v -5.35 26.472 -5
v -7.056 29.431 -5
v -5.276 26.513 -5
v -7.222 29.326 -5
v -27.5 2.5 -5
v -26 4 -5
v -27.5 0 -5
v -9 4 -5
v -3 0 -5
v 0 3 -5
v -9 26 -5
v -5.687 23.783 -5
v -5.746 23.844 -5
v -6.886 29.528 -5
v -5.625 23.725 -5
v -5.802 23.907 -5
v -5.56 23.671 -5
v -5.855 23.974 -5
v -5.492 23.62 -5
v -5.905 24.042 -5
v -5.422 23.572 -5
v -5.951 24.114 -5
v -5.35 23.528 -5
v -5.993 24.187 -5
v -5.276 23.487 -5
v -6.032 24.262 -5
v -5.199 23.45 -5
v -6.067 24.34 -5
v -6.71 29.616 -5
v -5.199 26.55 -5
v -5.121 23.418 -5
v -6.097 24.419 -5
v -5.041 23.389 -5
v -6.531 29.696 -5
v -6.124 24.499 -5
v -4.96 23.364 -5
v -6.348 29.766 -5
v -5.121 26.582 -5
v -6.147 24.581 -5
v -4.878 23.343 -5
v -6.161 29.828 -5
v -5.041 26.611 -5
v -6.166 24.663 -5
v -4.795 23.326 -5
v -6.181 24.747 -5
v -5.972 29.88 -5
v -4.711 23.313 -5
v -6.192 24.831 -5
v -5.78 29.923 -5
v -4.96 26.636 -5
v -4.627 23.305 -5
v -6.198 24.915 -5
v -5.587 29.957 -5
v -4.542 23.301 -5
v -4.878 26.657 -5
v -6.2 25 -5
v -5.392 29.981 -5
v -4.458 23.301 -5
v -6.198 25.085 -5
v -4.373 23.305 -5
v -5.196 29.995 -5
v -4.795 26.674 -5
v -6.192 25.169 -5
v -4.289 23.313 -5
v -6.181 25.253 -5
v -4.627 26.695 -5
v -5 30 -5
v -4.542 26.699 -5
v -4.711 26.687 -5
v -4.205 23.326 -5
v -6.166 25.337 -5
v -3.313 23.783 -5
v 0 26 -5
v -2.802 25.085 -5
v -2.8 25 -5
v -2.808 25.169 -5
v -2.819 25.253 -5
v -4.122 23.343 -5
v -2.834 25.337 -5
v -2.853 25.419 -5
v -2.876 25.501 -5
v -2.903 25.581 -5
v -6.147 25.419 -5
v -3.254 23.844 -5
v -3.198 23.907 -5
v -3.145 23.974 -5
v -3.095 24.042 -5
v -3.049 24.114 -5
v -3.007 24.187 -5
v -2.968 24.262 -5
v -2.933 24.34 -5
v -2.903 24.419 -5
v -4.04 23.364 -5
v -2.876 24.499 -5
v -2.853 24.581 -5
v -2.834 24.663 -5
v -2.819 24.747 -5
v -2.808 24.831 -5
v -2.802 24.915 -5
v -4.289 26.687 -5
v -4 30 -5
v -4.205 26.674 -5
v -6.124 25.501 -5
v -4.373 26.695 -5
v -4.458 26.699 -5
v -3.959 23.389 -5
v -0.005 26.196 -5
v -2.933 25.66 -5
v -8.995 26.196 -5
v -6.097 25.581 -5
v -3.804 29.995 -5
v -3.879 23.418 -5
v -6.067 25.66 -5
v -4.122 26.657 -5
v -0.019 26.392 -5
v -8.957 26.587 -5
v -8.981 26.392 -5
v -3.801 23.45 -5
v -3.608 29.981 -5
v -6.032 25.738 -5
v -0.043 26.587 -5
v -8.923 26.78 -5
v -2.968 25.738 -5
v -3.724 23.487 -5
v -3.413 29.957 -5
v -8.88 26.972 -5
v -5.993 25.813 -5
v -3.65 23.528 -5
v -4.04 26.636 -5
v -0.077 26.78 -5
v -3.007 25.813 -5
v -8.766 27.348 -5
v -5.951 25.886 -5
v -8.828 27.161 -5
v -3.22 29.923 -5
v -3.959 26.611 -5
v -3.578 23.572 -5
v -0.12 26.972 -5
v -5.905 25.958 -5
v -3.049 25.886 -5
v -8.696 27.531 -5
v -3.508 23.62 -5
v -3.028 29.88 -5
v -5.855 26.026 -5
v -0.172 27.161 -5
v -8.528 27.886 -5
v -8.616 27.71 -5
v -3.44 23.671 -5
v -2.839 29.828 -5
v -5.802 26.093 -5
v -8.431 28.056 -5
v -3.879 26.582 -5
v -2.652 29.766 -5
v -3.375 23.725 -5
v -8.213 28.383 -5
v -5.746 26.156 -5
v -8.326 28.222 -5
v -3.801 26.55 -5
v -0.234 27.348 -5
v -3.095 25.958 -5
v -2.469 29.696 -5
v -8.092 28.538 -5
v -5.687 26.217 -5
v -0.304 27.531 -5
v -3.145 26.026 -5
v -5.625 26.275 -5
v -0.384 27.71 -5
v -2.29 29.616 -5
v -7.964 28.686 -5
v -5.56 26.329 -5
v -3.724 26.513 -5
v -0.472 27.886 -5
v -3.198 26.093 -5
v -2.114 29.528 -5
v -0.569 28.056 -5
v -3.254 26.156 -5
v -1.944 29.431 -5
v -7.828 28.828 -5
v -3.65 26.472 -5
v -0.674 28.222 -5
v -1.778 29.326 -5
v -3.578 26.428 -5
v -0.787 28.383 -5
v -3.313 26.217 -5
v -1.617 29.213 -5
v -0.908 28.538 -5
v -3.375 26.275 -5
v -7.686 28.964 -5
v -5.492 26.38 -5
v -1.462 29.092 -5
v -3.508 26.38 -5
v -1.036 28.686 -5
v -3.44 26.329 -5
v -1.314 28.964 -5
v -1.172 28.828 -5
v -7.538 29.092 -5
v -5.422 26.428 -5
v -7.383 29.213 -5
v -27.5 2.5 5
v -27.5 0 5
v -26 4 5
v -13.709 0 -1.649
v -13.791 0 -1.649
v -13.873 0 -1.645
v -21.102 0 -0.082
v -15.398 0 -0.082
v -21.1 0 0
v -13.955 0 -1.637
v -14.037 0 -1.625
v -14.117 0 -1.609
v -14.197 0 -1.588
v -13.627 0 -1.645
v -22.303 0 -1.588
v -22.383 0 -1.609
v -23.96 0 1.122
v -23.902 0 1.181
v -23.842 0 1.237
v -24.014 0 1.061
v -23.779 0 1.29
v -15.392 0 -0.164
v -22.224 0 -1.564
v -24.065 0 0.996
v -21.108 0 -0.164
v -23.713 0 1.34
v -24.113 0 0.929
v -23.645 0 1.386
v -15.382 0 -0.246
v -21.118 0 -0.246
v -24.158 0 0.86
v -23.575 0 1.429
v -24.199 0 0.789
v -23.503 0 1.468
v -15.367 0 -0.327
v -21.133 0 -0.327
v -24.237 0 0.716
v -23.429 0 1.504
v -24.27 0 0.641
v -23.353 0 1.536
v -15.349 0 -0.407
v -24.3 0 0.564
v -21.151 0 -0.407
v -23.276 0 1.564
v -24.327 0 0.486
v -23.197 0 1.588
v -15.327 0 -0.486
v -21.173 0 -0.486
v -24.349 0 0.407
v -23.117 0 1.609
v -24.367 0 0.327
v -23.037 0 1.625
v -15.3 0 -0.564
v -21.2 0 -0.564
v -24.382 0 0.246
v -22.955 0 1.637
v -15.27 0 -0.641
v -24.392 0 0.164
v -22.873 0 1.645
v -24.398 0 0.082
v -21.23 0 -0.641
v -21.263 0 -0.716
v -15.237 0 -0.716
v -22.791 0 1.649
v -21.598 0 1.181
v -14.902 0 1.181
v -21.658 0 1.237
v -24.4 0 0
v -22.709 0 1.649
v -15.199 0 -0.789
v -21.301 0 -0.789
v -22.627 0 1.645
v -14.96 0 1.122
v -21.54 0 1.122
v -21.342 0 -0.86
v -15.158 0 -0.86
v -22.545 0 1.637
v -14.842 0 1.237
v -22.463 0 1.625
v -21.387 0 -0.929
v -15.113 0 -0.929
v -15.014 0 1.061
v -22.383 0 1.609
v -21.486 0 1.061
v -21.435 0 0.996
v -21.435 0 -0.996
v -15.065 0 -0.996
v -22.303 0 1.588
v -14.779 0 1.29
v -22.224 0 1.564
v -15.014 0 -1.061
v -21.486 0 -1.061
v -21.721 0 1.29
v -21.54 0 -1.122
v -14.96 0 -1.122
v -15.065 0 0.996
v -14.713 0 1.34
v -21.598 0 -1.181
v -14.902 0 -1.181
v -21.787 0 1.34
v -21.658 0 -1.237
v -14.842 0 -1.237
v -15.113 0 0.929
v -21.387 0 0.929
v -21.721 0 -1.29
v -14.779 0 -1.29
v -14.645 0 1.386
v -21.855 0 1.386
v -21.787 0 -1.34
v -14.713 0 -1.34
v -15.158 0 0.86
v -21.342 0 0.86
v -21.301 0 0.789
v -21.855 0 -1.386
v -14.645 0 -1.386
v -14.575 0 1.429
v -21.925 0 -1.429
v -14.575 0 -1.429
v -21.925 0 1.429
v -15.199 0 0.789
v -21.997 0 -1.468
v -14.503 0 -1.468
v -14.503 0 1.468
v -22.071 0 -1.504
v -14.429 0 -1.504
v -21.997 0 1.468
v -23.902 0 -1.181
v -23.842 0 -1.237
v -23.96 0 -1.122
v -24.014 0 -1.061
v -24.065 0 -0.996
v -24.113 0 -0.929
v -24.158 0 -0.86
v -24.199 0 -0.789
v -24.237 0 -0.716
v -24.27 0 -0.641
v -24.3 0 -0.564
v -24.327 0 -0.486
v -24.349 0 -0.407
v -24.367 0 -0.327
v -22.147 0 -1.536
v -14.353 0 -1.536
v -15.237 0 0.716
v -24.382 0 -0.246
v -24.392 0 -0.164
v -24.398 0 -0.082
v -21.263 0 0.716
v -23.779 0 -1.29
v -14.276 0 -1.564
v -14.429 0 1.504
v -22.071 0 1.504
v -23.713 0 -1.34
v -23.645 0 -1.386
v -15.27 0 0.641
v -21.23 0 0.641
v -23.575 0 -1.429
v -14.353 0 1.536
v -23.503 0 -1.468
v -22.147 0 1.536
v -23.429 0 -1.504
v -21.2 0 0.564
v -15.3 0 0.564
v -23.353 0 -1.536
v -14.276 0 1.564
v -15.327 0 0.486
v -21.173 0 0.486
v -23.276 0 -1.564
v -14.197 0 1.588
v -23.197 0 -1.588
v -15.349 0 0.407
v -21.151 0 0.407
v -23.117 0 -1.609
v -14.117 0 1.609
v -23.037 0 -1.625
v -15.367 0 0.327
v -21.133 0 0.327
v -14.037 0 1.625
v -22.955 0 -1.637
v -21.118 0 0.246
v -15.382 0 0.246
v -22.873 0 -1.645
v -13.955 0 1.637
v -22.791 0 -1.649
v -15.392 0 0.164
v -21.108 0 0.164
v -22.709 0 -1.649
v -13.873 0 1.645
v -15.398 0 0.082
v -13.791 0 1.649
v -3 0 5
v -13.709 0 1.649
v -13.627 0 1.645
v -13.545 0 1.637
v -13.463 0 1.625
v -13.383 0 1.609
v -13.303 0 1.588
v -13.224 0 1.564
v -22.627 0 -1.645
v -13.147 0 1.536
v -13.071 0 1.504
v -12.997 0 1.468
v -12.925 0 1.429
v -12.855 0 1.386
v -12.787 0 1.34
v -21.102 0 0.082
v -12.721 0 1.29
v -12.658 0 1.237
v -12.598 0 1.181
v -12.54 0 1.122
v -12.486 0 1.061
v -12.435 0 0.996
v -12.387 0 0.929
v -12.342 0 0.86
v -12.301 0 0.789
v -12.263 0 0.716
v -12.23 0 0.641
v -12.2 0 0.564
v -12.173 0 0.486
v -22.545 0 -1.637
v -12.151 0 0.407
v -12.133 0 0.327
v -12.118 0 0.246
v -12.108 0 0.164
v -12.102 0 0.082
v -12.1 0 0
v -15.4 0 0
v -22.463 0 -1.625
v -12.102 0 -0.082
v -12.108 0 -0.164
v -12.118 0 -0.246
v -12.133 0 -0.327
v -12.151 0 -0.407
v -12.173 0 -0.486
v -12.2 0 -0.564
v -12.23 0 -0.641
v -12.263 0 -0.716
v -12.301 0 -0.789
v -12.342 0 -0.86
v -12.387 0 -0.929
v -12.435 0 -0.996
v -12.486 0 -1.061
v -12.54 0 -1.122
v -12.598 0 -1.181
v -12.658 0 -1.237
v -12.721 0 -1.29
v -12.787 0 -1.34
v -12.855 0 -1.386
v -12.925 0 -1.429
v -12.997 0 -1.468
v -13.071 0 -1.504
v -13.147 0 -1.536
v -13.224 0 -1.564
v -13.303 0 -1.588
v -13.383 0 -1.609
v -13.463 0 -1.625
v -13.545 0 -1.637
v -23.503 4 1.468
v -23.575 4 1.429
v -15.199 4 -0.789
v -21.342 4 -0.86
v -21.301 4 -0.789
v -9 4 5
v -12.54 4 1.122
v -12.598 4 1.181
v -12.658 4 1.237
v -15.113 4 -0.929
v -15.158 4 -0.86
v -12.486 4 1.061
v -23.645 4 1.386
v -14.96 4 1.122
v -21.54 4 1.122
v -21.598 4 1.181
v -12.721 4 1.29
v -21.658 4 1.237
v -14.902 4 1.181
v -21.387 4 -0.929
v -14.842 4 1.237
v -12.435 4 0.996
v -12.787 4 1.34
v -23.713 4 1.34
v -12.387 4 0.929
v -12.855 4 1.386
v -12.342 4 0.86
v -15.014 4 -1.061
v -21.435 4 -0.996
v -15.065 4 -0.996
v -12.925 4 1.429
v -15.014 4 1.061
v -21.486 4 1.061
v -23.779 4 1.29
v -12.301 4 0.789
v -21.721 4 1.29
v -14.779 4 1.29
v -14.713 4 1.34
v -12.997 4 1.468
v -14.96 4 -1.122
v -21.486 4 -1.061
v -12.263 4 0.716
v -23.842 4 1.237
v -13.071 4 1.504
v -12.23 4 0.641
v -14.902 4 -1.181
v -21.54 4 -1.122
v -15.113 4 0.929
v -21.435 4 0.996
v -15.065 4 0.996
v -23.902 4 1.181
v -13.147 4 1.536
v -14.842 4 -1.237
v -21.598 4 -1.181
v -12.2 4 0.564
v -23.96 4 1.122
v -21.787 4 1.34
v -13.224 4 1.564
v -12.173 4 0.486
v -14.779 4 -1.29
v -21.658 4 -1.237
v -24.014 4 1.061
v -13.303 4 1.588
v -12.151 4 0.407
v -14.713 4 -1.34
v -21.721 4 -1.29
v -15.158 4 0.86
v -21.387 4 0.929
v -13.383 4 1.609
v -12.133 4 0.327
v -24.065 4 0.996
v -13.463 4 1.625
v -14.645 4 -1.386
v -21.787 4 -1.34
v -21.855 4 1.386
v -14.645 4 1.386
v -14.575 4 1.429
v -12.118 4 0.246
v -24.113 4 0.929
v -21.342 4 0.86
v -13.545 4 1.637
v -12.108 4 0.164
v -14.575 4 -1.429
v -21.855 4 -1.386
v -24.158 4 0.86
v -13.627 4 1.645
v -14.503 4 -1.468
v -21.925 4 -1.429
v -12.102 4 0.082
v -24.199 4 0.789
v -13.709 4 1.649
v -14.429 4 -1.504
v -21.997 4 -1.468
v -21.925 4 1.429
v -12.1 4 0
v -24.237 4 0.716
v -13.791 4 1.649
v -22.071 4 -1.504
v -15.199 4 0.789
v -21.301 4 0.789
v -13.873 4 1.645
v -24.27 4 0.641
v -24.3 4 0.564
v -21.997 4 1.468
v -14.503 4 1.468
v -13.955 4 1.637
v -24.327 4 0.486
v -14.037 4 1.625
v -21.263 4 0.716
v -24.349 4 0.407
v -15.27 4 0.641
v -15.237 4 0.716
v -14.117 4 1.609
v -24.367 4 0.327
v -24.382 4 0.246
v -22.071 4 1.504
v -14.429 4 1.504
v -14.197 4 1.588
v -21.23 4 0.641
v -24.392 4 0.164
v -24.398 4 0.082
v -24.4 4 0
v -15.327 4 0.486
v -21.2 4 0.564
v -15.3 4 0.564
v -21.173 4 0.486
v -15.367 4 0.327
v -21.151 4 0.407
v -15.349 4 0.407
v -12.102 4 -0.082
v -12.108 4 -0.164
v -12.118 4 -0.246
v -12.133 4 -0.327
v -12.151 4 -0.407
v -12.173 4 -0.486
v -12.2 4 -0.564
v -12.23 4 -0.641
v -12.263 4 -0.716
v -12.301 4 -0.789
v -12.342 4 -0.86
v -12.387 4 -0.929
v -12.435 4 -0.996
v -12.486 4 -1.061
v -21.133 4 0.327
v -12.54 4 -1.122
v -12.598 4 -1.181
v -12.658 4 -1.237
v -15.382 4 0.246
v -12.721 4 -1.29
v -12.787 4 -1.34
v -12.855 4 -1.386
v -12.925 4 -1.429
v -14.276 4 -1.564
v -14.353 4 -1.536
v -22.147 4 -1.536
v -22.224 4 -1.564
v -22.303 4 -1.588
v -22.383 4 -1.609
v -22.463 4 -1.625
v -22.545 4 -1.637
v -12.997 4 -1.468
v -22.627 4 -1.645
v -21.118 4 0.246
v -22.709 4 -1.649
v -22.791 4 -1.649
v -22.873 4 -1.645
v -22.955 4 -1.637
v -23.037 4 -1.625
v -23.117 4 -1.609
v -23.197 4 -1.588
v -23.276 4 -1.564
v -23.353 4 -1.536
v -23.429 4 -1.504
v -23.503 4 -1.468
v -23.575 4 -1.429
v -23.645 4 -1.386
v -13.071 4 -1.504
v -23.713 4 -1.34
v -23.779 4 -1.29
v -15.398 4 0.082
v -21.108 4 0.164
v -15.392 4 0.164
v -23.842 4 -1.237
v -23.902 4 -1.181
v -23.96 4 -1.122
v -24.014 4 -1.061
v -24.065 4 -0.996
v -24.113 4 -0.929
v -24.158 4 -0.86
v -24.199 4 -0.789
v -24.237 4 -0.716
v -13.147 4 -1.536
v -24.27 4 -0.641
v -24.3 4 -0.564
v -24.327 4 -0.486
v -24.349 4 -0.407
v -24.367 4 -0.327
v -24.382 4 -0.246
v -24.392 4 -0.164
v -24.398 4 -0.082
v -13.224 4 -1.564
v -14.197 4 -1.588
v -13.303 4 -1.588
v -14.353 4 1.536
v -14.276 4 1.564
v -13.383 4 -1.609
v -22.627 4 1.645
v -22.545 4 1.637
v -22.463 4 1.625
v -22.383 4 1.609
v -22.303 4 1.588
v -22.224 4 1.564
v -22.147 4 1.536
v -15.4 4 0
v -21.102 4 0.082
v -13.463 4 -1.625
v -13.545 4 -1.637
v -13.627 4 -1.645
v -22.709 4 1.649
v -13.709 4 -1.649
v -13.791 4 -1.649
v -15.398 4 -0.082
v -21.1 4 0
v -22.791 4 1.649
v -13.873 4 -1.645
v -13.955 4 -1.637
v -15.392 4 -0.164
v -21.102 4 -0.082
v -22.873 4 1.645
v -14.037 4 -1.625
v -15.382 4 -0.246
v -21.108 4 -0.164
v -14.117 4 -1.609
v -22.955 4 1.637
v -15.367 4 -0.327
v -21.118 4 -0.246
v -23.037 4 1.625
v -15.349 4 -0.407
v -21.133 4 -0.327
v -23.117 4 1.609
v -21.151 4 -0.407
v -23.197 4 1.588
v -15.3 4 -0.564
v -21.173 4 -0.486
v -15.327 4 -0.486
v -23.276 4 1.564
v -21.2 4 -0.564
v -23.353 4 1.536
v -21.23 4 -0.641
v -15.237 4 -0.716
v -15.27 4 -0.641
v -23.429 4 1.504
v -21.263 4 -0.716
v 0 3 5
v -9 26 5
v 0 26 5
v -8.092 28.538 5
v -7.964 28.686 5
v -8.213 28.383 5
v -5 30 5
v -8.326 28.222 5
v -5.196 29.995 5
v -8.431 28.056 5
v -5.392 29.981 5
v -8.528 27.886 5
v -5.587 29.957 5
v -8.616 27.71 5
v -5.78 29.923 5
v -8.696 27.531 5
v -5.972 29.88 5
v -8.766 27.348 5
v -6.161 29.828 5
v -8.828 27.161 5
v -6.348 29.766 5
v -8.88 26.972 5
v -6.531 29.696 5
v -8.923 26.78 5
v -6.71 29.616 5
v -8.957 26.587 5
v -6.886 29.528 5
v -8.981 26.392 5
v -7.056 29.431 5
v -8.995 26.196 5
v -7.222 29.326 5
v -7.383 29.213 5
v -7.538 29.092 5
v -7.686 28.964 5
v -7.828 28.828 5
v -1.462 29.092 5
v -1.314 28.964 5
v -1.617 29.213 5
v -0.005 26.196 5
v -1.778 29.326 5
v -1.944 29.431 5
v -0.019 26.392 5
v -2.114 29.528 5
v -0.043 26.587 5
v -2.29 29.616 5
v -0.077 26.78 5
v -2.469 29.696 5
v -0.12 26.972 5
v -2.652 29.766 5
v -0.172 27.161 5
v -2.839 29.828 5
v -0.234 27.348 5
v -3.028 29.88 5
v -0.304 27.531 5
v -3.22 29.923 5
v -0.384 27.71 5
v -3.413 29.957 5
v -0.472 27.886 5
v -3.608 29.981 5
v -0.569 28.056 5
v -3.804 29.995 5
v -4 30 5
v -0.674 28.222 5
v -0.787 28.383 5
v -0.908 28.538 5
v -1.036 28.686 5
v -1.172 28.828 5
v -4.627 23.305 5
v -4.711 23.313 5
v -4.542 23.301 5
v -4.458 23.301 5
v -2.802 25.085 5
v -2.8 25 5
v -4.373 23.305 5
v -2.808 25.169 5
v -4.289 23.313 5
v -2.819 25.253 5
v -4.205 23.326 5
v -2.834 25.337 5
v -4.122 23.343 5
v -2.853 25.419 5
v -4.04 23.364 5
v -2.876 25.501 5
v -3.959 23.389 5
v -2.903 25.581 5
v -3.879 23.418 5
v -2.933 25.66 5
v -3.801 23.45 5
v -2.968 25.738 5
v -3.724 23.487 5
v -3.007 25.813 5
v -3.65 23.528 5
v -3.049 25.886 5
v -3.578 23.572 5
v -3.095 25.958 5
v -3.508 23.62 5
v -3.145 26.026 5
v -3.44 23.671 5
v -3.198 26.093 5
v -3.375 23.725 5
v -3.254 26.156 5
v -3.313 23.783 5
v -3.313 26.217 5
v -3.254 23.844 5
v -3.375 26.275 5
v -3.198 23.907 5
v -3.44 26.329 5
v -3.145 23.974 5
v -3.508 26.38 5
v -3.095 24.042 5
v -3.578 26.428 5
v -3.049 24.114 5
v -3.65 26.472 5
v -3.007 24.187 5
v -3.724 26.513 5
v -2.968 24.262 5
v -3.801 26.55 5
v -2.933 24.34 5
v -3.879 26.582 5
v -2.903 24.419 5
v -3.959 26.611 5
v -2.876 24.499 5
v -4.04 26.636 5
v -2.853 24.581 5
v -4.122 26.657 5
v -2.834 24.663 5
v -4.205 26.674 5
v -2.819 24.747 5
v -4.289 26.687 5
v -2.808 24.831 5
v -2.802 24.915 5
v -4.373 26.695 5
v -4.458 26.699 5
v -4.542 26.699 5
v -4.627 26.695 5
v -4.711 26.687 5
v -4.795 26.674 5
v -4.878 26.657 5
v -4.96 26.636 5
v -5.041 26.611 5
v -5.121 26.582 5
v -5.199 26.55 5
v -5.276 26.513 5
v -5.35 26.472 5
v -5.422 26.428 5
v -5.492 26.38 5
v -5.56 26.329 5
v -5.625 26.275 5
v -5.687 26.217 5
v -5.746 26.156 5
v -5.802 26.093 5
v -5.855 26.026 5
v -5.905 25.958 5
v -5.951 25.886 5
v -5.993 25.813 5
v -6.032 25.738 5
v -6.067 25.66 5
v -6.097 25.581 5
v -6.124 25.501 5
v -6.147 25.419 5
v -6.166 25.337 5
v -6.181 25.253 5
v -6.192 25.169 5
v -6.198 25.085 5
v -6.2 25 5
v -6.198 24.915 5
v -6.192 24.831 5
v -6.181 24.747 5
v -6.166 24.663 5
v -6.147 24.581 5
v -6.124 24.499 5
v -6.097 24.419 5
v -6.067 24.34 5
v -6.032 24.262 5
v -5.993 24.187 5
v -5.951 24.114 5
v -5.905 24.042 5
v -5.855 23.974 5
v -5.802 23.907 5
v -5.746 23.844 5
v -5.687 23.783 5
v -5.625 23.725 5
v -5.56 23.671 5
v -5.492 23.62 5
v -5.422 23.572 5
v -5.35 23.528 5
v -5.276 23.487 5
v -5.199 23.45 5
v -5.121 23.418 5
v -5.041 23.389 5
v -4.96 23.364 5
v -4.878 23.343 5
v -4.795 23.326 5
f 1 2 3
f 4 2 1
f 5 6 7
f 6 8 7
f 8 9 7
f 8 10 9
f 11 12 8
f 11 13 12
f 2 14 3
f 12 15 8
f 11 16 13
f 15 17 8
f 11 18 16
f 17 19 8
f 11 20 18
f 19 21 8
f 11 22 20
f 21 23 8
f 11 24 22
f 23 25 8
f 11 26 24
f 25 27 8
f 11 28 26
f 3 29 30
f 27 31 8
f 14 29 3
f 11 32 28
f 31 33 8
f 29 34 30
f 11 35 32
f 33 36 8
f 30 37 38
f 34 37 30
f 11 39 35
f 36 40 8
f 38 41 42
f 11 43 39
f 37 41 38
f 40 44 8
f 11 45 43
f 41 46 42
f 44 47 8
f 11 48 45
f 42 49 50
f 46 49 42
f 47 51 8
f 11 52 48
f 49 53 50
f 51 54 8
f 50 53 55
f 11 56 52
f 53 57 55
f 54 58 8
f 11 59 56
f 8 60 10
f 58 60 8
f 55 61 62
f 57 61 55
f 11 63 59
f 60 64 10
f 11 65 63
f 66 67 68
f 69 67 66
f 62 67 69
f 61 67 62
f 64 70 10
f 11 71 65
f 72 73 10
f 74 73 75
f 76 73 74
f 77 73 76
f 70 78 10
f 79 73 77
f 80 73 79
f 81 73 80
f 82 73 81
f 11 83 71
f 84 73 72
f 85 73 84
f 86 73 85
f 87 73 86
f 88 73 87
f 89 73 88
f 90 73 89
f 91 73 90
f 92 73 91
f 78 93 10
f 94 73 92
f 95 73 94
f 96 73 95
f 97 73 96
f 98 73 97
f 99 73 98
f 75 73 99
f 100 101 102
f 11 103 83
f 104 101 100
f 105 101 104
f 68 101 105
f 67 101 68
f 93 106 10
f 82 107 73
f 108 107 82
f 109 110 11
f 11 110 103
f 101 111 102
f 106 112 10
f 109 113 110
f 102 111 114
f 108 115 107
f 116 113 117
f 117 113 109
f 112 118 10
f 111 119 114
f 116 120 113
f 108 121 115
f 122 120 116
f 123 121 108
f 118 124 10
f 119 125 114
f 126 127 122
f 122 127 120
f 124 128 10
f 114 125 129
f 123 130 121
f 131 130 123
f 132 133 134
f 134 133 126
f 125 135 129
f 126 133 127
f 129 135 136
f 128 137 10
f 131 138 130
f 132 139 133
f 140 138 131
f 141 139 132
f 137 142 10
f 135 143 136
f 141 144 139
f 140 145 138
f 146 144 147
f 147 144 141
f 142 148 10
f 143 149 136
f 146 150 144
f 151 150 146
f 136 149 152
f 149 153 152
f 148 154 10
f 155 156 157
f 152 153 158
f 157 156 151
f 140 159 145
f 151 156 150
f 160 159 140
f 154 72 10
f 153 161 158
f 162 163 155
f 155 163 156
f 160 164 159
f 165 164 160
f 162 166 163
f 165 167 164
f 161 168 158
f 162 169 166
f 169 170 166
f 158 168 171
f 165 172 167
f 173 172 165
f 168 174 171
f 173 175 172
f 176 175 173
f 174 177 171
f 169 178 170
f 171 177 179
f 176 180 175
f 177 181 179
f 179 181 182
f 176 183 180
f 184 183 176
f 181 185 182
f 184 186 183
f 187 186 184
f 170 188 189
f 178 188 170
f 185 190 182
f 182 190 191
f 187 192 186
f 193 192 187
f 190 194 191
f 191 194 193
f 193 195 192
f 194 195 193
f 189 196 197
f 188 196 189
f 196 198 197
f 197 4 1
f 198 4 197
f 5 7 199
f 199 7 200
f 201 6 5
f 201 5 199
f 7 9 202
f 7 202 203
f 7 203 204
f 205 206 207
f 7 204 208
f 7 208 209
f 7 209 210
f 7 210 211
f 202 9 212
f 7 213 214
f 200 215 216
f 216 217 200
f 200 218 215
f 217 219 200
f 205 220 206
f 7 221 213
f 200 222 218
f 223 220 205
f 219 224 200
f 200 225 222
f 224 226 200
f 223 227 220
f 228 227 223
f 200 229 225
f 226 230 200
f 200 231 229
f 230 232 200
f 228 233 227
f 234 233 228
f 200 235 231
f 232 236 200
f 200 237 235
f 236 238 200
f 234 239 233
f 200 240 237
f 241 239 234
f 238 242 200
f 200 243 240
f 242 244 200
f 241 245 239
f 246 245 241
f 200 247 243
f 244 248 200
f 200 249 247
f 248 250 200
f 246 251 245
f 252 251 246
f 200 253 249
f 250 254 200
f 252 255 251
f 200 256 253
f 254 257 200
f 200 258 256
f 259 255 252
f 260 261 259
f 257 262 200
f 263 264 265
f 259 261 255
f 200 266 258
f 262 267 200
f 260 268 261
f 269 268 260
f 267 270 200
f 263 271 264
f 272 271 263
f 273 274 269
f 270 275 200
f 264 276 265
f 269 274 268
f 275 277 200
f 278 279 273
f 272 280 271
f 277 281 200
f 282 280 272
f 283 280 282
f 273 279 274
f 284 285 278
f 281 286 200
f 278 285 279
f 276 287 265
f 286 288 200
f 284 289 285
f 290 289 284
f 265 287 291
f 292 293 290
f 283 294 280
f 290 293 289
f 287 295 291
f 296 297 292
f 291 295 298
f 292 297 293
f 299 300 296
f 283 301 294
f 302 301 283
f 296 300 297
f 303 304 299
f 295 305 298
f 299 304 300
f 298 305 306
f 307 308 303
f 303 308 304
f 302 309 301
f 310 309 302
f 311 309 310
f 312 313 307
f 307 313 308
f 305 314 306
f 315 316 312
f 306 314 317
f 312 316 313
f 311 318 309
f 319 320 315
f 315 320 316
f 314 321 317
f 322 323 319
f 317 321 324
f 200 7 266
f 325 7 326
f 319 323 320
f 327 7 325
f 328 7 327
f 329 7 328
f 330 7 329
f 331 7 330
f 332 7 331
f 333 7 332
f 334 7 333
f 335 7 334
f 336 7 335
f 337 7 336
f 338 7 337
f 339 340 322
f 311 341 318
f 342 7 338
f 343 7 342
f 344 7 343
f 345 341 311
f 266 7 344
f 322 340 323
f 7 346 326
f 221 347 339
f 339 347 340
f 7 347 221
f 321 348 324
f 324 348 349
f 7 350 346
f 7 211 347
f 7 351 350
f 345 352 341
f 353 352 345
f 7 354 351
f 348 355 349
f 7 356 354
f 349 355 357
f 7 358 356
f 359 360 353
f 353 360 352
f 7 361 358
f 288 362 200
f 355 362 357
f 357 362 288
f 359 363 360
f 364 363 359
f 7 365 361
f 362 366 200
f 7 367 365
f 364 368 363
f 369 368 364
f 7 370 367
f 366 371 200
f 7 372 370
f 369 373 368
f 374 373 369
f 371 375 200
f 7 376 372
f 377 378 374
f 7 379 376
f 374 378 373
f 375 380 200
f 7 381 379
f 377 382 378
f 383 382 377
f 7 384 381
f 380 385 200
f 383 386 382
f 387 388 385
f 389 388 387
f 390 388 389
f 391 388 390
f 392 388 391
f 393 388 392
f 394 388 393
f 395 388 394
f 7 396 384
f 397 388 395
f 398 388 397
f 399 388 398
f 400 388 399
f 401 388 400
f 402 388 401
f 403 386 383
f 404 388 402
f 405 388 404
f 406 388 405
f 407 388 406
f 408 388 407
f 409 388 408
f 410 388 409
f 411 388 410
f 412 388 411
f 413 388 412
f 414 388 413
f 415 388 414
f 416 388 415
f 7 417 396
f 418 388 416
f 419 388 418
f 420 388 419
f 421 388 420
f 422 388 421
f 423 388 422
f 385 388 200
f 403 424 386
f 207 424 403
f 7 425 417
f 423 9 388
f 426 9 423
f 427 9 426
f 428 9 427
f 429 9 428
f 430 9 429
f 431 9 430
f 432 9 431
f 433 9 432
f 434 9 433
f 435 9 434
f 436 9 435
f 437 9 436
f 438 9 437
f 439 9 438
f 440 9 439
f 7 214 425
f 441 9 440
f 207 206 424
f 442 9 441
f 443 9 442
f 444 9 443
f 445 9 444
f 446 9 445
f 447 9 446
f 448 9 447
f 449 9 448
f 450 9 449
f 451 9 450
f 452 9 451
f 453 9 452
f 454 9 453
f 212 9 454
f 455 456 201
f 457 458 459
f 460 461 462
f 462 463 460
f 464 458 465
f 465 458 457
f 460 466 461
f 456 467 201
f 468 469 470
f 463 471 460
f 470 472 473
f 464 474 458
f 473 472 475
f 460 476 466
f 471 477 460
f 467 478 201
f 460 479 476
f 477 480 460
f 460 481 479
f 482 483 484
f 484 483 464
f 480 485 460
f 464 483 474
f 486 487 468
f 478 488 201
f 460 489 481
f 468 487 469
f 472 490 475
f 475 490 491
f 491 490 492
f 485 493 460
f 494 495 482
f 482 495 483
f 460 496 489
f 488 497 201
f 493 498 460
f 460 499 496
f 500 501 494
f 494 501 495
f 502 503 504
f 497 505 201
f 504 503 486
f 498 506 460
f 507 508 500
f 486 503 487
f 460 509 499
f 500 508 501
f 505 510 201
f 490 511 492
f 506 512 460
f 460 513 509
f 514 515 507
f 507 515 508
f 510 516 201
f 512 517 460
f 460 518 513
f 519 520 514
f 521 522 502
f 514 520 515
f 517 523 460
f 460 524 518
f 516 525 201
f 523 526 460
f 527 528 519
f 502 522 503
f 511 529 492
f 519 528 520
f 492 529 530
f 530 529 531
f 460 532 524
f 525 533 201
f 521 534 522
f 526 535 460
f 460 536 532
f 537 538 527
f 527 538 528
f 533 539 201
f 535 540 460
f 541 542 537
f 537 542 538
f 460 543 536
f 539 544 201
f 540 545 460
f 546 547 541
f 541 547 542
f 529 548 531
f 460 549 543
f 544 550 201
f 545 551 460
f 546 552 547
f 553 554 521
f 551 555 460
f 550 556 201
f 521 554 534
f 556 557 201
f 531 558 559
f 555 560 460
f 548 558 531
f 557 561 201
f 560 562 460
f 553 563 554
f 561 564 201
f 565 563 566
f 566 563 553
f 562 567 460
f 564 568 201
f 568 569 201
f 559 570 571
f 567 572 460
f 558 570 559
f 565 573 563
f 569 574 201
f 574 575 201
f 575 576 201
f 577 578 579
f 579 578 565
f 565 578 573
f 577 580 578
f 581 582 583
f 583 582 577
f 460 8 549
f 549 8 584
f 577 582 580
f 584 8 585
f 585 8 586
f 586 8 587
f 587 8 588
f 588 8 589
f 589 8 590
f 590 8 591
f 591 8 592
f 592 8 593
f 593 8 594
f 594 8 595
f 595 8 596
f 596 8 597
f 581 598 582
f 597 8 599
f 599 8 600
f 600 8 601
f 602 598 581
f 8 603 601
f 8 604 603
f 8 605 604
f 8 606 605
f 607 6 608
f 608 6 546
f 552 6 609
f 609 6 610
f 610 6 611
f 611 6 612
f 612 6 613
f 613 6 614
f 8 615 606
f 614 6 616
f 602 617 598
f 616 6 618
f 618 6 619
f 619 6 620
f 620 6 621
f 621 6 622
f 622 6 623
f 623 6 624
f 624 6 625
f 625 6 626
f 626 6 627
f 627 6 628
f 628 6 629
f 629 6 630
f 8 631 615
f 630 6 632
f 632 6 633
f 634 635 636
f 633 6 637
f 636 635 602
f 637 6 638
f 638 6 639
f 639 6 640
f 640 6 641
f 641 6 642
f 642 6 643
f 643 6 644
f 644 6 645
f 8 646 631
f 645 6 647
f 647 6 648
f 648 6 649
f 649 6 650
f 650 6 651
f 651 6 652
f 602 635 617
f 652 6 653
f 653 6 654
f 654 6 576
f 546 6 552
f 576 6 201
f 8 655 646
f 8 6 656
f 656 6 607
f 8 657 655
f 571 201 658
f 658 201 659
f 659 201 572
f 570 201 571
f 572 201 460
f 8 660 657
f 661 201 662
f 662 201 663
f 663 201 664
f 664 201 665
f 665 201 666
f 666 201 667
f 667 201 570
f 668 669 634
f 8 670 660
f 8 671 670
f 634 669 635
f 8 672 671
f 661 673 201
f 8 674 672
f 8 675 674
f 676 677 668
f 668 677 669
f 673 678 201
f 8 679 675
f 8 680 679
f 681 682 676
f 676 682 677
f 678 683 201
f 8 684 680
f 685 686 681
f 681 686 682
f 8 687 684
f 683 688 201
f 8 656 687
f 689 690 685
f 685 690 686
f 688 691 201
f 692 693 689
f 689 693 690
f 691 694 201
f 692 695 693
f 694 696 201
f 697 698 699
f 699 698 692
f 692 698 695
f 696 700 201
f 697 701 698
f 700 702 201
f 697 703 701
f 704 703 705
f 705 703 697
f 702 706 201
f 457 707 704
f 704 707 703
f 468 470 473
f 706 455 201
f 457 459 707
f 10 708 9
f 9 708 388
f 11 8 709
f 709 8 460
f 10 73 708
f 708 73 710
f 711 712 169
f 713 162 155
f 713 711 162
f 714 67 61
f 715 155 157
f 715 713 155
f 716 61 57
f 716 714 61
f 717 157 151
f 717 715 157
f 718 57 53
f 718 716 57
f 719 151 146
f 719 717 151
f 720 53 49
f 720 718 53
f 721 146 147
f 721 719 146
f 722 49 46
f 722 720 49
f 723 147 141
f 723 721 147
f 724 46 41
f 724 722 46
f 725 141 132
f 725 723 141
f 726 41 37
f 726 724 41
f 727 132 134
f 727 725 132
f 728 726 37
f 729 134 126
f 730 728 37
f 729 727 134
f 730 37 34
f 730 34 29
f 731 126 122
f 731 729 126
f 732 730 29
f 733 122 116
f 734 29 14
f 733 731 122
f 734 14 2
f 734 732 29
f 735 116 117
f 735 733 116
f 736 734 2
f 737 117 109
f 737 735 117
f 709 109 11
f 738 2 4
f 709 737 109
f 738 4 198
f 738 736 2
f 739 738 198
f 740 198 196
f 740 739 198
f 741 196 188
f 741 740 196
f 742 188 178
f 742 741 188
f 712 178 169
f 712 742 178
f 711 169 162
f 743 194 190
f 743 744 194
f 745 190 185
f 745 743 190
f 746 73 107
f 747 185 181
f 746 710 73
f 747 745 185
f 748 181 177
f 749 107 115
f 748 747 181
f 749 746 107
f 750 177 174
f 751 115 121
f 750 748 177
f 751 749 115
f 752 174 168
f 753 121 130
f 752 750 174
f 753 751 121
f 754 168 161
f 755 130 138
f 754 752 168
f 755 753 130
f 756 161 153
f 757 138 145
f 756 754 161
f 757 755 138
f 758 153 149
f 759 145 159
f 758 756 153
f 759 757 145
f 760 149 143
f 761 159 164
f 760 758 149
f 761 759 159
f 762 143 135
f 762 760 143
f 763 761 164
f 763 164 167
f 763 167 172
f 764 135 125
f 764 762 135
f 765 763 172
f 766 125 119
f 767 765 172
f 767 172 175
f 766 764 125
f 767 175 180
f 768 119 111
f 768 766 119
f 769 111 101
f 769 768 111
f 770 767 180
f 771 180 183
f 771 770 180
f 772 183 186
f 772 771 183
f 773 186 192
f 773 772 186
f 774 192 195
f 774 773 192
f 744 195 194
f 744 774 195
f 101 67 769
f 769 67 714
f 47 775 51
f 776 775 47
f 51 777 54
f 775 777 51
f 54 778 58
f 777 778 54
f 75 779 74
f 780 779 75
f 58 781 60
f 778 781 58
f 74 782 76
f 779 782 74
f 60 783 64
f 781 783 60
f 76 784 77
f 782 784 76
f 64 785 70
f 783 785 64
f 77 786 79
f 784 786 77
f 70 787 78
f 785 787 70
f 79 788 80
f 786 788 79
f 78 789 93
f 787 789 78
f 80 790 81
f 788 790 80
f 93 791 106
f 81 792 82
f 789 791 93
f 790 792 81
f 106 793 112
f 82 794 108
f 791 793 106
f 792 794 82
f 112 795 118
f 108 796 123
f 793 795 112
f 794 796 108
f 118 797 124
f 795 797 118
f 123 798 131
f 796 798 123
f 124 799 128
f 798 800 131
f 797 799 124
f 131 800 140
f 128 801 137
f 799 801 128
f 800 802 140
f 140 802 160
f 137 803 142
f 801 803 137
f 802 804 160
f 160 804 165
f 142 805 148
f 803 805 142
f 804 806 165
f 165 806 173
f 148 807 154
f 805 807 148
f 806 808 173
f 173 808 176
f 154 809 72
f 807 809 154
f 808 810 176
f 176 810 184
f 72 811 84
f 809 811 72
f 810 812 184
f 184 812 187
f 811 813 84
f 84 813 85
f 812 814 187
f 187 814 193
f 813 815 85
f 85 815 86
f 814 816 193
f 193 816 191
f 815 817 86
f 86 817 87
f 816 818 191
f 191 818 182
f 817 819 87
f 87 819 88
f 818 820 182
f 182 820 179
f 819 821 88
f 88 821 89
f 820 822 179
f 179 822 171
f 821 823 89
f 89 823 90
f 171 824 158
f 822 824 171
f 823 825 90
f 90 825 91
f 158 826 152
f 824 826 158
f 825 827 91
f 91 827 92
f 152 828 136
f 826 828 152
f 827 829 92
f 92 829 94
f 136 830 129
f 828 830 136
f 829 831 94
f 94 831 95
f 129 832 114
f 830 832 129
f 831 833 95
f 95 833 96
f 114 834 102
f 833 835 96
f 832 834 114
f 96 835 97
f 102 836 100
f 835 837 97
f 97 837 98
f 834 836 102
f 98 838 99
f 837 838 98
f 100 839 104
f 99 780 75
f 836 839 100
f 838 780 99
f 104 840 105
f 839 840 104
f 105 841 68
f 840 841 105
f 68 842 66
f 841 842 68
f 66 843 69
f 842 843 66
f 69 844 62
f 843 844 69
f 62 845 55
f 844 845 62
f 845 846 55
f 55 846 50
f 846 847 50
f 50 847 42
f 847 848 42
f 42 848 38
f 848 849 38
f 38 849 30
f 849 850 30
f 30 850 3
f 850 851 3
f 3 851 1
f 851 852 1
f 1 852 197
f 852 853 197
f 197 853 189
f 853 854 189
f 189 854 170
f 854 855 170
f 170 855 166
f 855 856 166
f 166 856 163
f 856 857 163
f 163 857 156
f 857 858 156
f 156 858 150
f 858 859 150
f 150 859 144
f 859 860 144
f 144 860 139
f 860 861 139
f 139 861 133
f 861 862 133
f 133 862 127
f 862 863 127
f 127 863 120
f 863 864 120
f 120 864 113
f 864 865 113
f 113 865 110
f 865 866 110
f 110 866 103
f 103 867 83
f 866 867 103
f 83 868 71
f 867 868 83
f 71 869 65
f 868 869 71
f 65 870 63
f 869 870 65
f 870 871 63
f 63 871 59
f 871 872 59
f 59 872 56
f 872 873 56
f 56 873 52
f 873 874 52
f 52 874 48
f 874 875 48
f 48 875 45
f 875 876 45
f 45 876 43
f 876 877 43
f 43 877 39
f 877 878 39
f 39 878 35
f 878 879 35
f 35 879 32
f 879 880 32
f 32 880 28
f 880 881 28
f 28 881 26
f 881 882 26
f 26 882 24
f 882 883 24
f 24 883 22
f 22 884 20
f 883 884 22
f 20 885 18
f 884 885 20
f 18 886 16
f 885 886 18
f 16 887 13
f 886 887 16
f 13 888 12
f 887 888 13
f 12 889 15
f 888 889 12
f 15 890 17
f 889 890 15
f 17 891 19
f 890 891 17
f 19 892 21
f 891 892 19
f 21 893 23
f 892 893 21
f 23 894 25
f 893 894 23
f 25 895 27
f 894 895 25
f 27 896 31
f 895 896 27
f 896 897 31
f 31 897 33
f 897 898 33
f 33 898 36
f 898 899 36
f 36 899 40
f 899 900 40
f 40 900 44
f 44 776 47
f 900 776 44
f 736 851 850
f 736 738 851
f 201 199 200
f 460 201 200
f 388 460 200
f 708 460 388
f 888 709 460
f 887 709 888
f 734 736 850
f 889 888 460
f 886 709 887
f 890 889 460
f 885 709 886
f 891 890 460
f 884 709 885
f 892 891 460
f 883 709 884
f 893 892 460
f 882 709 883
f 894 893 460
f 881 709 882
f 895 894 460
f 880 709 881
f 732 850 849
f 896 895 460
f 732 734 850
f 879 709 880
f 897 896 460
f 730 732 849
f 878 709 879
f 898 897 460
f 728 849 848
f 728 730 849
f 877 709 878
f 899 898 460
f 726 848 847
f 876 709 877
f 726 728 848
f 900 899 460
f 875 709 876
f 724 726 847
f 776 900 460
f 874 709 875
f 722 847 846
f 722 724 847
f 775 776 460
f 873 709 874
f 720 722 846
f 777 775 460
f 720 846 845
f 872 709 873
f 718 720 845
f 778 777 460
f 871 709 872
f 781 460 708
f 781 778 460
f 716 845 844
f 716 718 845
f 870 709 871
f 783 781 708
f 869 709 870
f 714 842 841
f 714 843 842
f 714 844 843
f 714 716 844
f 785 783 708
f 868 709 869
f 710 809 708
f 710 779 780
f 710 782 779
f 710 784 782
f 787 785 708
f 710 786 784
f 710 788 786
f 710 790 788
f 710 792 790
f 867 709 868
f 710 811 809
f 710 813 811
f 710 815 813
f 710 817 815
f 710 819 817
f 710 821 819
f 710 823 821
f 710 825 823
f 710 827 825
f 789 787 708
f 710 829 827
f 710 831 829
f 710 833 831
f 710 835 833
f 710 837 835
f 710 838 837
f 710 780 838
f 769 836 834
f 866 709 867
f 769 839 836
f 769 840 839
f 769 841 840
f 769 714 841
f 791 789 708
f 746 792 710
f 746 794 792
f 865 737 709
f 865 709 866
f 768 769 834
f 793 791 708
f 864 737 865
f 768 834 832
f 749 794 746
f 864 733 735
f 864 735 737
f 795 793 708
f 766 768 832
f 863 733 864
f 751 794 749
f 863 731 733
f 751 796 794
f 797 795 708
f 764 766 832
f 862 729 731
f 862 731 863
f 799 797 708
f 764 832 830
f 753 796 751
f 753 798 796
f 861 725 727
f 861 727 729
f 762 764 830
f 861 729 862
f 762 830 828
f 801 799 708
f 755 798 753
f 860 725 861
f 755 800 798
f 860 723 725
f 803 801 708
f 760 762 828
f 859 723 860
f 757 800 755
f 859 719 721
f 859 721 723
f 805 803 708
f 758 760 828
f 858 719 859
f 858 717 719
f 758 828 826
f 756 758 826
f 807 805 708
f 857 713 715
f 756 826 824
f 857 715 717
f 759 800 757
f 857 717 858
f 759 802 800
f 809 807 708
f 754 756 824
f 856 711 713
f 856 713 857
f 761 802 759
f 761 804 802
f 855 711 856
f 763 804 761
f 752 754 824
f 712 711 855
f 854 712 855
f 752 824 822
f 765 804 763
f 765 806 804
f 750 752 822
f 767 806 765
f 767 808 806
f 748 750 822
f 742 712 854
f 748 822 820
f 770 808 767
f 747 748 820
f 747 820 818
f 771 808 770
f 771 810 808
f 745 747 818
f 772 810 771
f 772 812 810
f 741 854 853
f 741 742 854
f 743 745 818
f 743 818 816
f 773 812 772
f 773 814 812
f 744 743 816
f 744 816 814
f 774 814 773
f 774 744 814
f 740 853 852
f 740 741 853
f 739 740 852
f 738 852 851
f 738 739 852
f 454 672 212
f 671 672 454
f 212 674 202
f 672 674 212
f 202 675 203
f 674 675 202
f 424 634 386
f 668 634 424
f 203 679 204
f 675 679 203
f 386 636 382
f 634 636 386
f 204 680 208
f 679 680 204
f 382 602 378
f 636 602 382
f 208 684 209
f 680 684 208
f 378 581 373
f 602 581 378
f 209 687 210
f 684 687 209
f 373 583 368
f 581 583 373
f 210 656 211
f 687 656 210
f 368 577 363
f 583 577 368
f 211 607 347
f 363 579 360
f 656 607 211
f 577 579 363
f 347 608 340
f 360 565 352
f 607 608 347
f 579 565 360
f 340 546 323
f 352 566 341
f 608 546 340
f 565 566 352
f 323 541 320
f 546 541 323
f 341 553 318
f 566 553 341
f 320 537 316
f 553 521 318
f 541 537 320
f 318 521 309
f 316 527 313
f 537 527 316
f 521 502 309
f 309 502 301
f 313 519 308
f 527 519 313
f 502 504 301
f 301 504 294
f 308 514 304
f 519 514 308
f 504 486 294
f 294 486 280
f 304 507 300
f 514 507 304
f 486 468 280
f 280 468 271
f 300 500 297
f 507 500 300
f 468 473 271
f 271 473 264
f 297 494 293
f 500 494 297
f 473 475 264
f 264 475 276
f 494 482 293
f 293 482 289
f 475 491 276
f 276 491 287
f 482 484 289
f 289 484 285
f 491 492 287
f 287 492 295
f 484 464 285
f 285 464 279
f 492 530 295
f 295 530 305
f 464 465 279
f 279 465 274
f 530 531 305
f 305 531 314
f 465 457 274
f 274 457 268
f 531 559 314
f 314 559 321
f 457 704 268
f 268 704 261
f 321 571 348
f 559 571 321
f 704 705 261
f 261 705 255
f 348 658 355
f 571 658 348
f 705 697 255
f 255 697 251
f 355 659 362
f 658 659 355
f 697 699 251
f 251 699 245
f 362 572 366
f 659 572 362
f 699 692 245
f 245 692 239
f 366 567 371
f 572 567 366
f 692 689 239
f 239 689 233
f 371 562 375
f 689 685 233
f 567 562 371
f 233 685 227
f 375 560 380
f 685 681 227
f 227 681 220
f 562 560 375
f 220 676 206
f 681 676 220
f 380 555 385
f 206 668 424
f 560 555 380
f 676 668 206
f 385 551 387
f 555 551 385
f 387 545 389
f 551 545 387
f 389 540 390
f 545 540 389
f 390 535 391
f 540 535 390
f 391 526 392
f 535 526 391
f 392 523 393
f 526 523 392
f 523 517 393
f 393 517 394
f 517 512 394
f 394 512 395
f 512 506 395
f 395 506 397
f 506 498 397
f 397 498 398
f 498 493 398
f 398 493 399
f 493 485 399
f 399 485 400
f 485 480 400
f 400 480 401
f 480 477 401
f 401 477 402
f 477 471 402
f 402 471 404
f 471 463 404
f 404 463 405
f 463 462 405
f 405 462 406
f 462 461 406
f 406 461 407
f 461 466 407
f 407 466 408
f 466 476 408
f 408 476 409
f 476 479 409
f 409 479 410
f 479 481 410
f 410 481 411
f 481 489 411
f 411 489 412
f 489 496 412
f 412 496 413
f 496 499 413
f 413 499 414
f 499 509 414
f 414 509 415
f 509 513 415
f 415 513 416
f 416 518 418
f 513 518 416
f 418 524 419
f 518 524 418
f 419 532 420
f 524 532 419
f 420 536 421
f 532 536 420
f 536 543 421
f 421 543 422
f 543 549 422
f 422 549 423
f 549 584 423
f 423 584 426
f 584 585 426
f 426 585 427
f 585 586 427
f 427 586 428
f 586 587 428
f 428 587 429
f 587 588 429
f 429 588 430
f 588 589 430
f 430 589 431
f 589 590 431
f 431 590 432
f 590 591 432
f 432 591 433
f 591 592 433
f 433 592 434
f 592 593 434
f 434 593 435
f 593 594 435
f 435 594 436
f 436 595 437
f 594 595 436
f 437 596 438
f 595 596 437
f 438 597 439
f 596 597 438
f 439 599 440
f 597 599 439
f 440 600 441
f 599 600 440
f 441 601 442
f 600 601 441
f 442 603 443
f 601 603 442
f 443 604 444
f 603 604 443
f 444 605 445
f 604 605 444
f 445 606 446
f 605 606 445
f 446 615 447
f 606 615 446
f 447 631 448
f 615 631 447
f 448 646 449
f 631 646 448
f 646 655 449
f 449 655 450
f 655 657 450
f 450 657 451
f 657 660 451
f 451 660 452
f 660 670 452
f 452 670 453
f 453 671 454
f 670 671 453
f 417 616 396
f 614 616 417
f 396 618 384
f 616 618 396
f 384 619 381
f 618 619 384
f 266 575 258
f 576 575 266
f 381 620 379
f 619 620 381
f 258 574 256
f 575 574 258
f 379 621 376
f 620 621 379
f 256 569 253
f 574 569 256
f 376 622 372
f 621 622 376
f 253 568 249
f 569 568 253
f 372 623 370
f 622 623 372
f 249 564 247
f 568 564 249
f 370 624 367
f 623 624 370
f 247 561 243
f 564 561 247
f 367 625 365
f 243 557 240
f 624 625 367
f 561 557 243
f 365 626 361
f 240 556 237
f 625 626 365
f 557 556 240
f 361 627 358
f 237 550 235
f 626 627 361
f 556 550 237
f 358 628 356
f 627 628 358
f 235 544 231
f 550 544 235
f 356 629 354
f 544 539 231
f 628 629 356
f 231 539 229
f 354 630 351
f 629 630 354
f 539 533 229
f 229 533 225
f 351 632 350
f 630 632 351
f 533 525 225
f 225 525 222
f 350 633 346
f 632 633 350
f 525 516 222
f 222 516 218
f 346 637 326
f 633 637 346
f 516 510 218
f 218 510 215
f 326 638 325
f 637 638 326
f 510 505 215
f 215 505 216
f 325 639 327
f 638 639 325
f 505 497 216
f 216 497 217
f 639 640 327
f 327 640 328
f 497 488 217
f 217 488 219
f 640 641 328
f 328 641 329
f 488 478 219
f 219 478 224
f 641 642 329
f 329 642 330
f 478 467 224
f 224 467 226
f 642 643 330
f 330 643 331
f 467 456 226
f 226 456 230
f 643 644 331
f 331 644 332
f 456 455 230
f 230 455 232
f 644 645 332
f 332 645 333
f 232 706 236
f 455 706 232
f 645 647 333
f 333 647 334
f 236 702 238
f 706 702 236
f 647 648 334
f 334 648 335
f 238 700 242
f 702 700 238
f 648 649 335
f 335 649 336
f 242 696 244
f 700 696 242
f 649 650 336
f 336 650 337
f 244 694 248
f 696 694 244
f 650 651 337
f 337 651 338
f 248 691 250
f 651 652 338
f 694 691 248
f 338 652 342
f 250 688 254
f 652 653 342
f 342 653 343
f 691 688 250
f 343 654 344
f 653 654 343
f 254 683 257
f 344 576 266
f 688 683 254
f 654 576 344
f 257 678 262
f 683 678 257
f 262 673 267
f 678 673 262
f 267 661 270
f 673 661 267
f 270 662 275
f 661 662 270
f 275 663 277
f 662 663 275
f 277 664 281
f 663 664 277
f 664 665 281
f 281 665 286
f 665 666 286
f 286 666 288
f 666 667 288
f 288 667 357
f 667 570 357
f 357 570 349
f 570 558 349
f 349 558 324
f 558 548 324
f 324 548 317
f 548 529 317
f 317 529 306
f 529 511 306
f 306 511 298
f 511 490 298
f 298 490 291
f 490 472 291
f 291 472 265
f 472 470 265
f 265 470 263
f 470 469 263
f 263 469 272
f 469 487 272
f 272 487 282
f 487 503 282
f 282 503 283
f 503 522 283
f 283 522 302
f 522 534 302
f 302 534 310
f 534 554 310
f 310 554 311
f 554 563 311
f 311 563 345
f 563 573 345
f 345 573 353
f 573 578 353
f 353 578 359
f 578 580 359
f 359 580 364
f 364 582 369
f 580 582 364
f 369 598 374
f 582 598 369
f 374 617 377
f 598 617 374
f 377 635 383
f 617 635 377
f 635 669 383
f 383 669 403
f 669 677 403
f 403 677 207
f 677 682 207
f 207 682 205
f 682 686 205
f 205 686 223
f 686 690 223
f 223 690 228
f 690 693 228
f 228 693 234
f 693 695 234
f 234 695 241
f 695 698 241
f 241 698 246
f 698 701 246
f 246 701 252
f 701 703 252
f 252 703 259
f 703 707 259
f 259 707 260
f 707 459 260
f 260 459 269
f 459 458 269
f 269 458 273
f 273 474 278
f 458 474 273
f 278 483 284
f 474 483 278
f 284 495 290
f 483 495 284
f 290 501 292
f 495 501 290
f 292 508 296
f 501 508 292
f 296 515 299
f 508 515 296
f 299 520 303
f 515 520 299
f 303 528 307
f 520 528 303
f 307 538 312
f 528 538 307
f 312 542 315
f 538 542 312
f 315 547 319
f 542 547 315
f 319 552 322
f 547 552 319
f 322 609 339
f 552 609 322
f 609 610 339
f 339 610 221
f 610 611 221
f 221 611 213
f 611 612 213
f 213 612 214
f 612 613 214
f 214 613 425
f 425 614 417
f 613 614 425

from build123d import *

# Parameters (mm, degrees)
PAD_DEPTH       = 5
CHAMFER_SIZE    = 3
SKETCH001_R     = 1.65
POCKET_DEPTH    = 5
FILLET_R        = 4
SKETCH002_R     = 1.7
POCKET001_DEPTH = 10.001
CHAMFER001_SIZE = 1.5


with BuildPart() as part:
    # Sketch → Pad (new body, symmetric)
    with BuildSketch(Plane.XY):
        Polygon((-27.5, 0), (0, 0), (0, 30), (-9, 30), (-9, 4), (-27.5, 4), align=None)
    extrude(amount=PAD_DEPTH, both=True)

    # Chamfer
    chamfer_edges = [part.edges().sort_by_distance(p)[0] for p in [
        (0, 0, 0),
    ]]
    chamfer(chamfer_edges, length=CHAMFER_SIZE)

    # Sketch001 (on Face7 of Chamfer) → Pocket (cut)
    with BuildSketch(Plane(origin=(0, 4, 0), x_dir=(-1, 0, 0), z_dir=(0, 1, 0))):
        with Locations((22.75, 0)):
            Circle(SKETCH001_R)
        with Locations((13.75, 0)):
            Circle(SKETCH001_R)
    extrude(amount=-POCKET_DEPTH, mode=Mode.SUBTRACT)

    # Fillet
    fillet_edges = [part.edges().sort_by_distance(p)[0] for p in [
        (-9, 30, 0),
        (0, 30, 0),
    ]]
    fillet(fillet_edges, radius=FILLET_R)

    # Sketch002 (on Face11 of Fillet) → Pocket001 (cut, through all)
    with BuildSketch(Plane.XY.offset(5)):
        with Locations((-4.5, 25)):
            Circle(SKETCH002_R)
    extrude(amount=-POCKET001_DEPTH, mode=Mode.SUBTRACT)

    # Chamfer001
    chamfer001_edges = [part.edges().sort_by_distance(p)[0] for p in [
        (-27.5, 4, 0),
    ]]
    chamfer(chamfer001_edges, length=CHAMFER001_SIZE)


solid = part.part
